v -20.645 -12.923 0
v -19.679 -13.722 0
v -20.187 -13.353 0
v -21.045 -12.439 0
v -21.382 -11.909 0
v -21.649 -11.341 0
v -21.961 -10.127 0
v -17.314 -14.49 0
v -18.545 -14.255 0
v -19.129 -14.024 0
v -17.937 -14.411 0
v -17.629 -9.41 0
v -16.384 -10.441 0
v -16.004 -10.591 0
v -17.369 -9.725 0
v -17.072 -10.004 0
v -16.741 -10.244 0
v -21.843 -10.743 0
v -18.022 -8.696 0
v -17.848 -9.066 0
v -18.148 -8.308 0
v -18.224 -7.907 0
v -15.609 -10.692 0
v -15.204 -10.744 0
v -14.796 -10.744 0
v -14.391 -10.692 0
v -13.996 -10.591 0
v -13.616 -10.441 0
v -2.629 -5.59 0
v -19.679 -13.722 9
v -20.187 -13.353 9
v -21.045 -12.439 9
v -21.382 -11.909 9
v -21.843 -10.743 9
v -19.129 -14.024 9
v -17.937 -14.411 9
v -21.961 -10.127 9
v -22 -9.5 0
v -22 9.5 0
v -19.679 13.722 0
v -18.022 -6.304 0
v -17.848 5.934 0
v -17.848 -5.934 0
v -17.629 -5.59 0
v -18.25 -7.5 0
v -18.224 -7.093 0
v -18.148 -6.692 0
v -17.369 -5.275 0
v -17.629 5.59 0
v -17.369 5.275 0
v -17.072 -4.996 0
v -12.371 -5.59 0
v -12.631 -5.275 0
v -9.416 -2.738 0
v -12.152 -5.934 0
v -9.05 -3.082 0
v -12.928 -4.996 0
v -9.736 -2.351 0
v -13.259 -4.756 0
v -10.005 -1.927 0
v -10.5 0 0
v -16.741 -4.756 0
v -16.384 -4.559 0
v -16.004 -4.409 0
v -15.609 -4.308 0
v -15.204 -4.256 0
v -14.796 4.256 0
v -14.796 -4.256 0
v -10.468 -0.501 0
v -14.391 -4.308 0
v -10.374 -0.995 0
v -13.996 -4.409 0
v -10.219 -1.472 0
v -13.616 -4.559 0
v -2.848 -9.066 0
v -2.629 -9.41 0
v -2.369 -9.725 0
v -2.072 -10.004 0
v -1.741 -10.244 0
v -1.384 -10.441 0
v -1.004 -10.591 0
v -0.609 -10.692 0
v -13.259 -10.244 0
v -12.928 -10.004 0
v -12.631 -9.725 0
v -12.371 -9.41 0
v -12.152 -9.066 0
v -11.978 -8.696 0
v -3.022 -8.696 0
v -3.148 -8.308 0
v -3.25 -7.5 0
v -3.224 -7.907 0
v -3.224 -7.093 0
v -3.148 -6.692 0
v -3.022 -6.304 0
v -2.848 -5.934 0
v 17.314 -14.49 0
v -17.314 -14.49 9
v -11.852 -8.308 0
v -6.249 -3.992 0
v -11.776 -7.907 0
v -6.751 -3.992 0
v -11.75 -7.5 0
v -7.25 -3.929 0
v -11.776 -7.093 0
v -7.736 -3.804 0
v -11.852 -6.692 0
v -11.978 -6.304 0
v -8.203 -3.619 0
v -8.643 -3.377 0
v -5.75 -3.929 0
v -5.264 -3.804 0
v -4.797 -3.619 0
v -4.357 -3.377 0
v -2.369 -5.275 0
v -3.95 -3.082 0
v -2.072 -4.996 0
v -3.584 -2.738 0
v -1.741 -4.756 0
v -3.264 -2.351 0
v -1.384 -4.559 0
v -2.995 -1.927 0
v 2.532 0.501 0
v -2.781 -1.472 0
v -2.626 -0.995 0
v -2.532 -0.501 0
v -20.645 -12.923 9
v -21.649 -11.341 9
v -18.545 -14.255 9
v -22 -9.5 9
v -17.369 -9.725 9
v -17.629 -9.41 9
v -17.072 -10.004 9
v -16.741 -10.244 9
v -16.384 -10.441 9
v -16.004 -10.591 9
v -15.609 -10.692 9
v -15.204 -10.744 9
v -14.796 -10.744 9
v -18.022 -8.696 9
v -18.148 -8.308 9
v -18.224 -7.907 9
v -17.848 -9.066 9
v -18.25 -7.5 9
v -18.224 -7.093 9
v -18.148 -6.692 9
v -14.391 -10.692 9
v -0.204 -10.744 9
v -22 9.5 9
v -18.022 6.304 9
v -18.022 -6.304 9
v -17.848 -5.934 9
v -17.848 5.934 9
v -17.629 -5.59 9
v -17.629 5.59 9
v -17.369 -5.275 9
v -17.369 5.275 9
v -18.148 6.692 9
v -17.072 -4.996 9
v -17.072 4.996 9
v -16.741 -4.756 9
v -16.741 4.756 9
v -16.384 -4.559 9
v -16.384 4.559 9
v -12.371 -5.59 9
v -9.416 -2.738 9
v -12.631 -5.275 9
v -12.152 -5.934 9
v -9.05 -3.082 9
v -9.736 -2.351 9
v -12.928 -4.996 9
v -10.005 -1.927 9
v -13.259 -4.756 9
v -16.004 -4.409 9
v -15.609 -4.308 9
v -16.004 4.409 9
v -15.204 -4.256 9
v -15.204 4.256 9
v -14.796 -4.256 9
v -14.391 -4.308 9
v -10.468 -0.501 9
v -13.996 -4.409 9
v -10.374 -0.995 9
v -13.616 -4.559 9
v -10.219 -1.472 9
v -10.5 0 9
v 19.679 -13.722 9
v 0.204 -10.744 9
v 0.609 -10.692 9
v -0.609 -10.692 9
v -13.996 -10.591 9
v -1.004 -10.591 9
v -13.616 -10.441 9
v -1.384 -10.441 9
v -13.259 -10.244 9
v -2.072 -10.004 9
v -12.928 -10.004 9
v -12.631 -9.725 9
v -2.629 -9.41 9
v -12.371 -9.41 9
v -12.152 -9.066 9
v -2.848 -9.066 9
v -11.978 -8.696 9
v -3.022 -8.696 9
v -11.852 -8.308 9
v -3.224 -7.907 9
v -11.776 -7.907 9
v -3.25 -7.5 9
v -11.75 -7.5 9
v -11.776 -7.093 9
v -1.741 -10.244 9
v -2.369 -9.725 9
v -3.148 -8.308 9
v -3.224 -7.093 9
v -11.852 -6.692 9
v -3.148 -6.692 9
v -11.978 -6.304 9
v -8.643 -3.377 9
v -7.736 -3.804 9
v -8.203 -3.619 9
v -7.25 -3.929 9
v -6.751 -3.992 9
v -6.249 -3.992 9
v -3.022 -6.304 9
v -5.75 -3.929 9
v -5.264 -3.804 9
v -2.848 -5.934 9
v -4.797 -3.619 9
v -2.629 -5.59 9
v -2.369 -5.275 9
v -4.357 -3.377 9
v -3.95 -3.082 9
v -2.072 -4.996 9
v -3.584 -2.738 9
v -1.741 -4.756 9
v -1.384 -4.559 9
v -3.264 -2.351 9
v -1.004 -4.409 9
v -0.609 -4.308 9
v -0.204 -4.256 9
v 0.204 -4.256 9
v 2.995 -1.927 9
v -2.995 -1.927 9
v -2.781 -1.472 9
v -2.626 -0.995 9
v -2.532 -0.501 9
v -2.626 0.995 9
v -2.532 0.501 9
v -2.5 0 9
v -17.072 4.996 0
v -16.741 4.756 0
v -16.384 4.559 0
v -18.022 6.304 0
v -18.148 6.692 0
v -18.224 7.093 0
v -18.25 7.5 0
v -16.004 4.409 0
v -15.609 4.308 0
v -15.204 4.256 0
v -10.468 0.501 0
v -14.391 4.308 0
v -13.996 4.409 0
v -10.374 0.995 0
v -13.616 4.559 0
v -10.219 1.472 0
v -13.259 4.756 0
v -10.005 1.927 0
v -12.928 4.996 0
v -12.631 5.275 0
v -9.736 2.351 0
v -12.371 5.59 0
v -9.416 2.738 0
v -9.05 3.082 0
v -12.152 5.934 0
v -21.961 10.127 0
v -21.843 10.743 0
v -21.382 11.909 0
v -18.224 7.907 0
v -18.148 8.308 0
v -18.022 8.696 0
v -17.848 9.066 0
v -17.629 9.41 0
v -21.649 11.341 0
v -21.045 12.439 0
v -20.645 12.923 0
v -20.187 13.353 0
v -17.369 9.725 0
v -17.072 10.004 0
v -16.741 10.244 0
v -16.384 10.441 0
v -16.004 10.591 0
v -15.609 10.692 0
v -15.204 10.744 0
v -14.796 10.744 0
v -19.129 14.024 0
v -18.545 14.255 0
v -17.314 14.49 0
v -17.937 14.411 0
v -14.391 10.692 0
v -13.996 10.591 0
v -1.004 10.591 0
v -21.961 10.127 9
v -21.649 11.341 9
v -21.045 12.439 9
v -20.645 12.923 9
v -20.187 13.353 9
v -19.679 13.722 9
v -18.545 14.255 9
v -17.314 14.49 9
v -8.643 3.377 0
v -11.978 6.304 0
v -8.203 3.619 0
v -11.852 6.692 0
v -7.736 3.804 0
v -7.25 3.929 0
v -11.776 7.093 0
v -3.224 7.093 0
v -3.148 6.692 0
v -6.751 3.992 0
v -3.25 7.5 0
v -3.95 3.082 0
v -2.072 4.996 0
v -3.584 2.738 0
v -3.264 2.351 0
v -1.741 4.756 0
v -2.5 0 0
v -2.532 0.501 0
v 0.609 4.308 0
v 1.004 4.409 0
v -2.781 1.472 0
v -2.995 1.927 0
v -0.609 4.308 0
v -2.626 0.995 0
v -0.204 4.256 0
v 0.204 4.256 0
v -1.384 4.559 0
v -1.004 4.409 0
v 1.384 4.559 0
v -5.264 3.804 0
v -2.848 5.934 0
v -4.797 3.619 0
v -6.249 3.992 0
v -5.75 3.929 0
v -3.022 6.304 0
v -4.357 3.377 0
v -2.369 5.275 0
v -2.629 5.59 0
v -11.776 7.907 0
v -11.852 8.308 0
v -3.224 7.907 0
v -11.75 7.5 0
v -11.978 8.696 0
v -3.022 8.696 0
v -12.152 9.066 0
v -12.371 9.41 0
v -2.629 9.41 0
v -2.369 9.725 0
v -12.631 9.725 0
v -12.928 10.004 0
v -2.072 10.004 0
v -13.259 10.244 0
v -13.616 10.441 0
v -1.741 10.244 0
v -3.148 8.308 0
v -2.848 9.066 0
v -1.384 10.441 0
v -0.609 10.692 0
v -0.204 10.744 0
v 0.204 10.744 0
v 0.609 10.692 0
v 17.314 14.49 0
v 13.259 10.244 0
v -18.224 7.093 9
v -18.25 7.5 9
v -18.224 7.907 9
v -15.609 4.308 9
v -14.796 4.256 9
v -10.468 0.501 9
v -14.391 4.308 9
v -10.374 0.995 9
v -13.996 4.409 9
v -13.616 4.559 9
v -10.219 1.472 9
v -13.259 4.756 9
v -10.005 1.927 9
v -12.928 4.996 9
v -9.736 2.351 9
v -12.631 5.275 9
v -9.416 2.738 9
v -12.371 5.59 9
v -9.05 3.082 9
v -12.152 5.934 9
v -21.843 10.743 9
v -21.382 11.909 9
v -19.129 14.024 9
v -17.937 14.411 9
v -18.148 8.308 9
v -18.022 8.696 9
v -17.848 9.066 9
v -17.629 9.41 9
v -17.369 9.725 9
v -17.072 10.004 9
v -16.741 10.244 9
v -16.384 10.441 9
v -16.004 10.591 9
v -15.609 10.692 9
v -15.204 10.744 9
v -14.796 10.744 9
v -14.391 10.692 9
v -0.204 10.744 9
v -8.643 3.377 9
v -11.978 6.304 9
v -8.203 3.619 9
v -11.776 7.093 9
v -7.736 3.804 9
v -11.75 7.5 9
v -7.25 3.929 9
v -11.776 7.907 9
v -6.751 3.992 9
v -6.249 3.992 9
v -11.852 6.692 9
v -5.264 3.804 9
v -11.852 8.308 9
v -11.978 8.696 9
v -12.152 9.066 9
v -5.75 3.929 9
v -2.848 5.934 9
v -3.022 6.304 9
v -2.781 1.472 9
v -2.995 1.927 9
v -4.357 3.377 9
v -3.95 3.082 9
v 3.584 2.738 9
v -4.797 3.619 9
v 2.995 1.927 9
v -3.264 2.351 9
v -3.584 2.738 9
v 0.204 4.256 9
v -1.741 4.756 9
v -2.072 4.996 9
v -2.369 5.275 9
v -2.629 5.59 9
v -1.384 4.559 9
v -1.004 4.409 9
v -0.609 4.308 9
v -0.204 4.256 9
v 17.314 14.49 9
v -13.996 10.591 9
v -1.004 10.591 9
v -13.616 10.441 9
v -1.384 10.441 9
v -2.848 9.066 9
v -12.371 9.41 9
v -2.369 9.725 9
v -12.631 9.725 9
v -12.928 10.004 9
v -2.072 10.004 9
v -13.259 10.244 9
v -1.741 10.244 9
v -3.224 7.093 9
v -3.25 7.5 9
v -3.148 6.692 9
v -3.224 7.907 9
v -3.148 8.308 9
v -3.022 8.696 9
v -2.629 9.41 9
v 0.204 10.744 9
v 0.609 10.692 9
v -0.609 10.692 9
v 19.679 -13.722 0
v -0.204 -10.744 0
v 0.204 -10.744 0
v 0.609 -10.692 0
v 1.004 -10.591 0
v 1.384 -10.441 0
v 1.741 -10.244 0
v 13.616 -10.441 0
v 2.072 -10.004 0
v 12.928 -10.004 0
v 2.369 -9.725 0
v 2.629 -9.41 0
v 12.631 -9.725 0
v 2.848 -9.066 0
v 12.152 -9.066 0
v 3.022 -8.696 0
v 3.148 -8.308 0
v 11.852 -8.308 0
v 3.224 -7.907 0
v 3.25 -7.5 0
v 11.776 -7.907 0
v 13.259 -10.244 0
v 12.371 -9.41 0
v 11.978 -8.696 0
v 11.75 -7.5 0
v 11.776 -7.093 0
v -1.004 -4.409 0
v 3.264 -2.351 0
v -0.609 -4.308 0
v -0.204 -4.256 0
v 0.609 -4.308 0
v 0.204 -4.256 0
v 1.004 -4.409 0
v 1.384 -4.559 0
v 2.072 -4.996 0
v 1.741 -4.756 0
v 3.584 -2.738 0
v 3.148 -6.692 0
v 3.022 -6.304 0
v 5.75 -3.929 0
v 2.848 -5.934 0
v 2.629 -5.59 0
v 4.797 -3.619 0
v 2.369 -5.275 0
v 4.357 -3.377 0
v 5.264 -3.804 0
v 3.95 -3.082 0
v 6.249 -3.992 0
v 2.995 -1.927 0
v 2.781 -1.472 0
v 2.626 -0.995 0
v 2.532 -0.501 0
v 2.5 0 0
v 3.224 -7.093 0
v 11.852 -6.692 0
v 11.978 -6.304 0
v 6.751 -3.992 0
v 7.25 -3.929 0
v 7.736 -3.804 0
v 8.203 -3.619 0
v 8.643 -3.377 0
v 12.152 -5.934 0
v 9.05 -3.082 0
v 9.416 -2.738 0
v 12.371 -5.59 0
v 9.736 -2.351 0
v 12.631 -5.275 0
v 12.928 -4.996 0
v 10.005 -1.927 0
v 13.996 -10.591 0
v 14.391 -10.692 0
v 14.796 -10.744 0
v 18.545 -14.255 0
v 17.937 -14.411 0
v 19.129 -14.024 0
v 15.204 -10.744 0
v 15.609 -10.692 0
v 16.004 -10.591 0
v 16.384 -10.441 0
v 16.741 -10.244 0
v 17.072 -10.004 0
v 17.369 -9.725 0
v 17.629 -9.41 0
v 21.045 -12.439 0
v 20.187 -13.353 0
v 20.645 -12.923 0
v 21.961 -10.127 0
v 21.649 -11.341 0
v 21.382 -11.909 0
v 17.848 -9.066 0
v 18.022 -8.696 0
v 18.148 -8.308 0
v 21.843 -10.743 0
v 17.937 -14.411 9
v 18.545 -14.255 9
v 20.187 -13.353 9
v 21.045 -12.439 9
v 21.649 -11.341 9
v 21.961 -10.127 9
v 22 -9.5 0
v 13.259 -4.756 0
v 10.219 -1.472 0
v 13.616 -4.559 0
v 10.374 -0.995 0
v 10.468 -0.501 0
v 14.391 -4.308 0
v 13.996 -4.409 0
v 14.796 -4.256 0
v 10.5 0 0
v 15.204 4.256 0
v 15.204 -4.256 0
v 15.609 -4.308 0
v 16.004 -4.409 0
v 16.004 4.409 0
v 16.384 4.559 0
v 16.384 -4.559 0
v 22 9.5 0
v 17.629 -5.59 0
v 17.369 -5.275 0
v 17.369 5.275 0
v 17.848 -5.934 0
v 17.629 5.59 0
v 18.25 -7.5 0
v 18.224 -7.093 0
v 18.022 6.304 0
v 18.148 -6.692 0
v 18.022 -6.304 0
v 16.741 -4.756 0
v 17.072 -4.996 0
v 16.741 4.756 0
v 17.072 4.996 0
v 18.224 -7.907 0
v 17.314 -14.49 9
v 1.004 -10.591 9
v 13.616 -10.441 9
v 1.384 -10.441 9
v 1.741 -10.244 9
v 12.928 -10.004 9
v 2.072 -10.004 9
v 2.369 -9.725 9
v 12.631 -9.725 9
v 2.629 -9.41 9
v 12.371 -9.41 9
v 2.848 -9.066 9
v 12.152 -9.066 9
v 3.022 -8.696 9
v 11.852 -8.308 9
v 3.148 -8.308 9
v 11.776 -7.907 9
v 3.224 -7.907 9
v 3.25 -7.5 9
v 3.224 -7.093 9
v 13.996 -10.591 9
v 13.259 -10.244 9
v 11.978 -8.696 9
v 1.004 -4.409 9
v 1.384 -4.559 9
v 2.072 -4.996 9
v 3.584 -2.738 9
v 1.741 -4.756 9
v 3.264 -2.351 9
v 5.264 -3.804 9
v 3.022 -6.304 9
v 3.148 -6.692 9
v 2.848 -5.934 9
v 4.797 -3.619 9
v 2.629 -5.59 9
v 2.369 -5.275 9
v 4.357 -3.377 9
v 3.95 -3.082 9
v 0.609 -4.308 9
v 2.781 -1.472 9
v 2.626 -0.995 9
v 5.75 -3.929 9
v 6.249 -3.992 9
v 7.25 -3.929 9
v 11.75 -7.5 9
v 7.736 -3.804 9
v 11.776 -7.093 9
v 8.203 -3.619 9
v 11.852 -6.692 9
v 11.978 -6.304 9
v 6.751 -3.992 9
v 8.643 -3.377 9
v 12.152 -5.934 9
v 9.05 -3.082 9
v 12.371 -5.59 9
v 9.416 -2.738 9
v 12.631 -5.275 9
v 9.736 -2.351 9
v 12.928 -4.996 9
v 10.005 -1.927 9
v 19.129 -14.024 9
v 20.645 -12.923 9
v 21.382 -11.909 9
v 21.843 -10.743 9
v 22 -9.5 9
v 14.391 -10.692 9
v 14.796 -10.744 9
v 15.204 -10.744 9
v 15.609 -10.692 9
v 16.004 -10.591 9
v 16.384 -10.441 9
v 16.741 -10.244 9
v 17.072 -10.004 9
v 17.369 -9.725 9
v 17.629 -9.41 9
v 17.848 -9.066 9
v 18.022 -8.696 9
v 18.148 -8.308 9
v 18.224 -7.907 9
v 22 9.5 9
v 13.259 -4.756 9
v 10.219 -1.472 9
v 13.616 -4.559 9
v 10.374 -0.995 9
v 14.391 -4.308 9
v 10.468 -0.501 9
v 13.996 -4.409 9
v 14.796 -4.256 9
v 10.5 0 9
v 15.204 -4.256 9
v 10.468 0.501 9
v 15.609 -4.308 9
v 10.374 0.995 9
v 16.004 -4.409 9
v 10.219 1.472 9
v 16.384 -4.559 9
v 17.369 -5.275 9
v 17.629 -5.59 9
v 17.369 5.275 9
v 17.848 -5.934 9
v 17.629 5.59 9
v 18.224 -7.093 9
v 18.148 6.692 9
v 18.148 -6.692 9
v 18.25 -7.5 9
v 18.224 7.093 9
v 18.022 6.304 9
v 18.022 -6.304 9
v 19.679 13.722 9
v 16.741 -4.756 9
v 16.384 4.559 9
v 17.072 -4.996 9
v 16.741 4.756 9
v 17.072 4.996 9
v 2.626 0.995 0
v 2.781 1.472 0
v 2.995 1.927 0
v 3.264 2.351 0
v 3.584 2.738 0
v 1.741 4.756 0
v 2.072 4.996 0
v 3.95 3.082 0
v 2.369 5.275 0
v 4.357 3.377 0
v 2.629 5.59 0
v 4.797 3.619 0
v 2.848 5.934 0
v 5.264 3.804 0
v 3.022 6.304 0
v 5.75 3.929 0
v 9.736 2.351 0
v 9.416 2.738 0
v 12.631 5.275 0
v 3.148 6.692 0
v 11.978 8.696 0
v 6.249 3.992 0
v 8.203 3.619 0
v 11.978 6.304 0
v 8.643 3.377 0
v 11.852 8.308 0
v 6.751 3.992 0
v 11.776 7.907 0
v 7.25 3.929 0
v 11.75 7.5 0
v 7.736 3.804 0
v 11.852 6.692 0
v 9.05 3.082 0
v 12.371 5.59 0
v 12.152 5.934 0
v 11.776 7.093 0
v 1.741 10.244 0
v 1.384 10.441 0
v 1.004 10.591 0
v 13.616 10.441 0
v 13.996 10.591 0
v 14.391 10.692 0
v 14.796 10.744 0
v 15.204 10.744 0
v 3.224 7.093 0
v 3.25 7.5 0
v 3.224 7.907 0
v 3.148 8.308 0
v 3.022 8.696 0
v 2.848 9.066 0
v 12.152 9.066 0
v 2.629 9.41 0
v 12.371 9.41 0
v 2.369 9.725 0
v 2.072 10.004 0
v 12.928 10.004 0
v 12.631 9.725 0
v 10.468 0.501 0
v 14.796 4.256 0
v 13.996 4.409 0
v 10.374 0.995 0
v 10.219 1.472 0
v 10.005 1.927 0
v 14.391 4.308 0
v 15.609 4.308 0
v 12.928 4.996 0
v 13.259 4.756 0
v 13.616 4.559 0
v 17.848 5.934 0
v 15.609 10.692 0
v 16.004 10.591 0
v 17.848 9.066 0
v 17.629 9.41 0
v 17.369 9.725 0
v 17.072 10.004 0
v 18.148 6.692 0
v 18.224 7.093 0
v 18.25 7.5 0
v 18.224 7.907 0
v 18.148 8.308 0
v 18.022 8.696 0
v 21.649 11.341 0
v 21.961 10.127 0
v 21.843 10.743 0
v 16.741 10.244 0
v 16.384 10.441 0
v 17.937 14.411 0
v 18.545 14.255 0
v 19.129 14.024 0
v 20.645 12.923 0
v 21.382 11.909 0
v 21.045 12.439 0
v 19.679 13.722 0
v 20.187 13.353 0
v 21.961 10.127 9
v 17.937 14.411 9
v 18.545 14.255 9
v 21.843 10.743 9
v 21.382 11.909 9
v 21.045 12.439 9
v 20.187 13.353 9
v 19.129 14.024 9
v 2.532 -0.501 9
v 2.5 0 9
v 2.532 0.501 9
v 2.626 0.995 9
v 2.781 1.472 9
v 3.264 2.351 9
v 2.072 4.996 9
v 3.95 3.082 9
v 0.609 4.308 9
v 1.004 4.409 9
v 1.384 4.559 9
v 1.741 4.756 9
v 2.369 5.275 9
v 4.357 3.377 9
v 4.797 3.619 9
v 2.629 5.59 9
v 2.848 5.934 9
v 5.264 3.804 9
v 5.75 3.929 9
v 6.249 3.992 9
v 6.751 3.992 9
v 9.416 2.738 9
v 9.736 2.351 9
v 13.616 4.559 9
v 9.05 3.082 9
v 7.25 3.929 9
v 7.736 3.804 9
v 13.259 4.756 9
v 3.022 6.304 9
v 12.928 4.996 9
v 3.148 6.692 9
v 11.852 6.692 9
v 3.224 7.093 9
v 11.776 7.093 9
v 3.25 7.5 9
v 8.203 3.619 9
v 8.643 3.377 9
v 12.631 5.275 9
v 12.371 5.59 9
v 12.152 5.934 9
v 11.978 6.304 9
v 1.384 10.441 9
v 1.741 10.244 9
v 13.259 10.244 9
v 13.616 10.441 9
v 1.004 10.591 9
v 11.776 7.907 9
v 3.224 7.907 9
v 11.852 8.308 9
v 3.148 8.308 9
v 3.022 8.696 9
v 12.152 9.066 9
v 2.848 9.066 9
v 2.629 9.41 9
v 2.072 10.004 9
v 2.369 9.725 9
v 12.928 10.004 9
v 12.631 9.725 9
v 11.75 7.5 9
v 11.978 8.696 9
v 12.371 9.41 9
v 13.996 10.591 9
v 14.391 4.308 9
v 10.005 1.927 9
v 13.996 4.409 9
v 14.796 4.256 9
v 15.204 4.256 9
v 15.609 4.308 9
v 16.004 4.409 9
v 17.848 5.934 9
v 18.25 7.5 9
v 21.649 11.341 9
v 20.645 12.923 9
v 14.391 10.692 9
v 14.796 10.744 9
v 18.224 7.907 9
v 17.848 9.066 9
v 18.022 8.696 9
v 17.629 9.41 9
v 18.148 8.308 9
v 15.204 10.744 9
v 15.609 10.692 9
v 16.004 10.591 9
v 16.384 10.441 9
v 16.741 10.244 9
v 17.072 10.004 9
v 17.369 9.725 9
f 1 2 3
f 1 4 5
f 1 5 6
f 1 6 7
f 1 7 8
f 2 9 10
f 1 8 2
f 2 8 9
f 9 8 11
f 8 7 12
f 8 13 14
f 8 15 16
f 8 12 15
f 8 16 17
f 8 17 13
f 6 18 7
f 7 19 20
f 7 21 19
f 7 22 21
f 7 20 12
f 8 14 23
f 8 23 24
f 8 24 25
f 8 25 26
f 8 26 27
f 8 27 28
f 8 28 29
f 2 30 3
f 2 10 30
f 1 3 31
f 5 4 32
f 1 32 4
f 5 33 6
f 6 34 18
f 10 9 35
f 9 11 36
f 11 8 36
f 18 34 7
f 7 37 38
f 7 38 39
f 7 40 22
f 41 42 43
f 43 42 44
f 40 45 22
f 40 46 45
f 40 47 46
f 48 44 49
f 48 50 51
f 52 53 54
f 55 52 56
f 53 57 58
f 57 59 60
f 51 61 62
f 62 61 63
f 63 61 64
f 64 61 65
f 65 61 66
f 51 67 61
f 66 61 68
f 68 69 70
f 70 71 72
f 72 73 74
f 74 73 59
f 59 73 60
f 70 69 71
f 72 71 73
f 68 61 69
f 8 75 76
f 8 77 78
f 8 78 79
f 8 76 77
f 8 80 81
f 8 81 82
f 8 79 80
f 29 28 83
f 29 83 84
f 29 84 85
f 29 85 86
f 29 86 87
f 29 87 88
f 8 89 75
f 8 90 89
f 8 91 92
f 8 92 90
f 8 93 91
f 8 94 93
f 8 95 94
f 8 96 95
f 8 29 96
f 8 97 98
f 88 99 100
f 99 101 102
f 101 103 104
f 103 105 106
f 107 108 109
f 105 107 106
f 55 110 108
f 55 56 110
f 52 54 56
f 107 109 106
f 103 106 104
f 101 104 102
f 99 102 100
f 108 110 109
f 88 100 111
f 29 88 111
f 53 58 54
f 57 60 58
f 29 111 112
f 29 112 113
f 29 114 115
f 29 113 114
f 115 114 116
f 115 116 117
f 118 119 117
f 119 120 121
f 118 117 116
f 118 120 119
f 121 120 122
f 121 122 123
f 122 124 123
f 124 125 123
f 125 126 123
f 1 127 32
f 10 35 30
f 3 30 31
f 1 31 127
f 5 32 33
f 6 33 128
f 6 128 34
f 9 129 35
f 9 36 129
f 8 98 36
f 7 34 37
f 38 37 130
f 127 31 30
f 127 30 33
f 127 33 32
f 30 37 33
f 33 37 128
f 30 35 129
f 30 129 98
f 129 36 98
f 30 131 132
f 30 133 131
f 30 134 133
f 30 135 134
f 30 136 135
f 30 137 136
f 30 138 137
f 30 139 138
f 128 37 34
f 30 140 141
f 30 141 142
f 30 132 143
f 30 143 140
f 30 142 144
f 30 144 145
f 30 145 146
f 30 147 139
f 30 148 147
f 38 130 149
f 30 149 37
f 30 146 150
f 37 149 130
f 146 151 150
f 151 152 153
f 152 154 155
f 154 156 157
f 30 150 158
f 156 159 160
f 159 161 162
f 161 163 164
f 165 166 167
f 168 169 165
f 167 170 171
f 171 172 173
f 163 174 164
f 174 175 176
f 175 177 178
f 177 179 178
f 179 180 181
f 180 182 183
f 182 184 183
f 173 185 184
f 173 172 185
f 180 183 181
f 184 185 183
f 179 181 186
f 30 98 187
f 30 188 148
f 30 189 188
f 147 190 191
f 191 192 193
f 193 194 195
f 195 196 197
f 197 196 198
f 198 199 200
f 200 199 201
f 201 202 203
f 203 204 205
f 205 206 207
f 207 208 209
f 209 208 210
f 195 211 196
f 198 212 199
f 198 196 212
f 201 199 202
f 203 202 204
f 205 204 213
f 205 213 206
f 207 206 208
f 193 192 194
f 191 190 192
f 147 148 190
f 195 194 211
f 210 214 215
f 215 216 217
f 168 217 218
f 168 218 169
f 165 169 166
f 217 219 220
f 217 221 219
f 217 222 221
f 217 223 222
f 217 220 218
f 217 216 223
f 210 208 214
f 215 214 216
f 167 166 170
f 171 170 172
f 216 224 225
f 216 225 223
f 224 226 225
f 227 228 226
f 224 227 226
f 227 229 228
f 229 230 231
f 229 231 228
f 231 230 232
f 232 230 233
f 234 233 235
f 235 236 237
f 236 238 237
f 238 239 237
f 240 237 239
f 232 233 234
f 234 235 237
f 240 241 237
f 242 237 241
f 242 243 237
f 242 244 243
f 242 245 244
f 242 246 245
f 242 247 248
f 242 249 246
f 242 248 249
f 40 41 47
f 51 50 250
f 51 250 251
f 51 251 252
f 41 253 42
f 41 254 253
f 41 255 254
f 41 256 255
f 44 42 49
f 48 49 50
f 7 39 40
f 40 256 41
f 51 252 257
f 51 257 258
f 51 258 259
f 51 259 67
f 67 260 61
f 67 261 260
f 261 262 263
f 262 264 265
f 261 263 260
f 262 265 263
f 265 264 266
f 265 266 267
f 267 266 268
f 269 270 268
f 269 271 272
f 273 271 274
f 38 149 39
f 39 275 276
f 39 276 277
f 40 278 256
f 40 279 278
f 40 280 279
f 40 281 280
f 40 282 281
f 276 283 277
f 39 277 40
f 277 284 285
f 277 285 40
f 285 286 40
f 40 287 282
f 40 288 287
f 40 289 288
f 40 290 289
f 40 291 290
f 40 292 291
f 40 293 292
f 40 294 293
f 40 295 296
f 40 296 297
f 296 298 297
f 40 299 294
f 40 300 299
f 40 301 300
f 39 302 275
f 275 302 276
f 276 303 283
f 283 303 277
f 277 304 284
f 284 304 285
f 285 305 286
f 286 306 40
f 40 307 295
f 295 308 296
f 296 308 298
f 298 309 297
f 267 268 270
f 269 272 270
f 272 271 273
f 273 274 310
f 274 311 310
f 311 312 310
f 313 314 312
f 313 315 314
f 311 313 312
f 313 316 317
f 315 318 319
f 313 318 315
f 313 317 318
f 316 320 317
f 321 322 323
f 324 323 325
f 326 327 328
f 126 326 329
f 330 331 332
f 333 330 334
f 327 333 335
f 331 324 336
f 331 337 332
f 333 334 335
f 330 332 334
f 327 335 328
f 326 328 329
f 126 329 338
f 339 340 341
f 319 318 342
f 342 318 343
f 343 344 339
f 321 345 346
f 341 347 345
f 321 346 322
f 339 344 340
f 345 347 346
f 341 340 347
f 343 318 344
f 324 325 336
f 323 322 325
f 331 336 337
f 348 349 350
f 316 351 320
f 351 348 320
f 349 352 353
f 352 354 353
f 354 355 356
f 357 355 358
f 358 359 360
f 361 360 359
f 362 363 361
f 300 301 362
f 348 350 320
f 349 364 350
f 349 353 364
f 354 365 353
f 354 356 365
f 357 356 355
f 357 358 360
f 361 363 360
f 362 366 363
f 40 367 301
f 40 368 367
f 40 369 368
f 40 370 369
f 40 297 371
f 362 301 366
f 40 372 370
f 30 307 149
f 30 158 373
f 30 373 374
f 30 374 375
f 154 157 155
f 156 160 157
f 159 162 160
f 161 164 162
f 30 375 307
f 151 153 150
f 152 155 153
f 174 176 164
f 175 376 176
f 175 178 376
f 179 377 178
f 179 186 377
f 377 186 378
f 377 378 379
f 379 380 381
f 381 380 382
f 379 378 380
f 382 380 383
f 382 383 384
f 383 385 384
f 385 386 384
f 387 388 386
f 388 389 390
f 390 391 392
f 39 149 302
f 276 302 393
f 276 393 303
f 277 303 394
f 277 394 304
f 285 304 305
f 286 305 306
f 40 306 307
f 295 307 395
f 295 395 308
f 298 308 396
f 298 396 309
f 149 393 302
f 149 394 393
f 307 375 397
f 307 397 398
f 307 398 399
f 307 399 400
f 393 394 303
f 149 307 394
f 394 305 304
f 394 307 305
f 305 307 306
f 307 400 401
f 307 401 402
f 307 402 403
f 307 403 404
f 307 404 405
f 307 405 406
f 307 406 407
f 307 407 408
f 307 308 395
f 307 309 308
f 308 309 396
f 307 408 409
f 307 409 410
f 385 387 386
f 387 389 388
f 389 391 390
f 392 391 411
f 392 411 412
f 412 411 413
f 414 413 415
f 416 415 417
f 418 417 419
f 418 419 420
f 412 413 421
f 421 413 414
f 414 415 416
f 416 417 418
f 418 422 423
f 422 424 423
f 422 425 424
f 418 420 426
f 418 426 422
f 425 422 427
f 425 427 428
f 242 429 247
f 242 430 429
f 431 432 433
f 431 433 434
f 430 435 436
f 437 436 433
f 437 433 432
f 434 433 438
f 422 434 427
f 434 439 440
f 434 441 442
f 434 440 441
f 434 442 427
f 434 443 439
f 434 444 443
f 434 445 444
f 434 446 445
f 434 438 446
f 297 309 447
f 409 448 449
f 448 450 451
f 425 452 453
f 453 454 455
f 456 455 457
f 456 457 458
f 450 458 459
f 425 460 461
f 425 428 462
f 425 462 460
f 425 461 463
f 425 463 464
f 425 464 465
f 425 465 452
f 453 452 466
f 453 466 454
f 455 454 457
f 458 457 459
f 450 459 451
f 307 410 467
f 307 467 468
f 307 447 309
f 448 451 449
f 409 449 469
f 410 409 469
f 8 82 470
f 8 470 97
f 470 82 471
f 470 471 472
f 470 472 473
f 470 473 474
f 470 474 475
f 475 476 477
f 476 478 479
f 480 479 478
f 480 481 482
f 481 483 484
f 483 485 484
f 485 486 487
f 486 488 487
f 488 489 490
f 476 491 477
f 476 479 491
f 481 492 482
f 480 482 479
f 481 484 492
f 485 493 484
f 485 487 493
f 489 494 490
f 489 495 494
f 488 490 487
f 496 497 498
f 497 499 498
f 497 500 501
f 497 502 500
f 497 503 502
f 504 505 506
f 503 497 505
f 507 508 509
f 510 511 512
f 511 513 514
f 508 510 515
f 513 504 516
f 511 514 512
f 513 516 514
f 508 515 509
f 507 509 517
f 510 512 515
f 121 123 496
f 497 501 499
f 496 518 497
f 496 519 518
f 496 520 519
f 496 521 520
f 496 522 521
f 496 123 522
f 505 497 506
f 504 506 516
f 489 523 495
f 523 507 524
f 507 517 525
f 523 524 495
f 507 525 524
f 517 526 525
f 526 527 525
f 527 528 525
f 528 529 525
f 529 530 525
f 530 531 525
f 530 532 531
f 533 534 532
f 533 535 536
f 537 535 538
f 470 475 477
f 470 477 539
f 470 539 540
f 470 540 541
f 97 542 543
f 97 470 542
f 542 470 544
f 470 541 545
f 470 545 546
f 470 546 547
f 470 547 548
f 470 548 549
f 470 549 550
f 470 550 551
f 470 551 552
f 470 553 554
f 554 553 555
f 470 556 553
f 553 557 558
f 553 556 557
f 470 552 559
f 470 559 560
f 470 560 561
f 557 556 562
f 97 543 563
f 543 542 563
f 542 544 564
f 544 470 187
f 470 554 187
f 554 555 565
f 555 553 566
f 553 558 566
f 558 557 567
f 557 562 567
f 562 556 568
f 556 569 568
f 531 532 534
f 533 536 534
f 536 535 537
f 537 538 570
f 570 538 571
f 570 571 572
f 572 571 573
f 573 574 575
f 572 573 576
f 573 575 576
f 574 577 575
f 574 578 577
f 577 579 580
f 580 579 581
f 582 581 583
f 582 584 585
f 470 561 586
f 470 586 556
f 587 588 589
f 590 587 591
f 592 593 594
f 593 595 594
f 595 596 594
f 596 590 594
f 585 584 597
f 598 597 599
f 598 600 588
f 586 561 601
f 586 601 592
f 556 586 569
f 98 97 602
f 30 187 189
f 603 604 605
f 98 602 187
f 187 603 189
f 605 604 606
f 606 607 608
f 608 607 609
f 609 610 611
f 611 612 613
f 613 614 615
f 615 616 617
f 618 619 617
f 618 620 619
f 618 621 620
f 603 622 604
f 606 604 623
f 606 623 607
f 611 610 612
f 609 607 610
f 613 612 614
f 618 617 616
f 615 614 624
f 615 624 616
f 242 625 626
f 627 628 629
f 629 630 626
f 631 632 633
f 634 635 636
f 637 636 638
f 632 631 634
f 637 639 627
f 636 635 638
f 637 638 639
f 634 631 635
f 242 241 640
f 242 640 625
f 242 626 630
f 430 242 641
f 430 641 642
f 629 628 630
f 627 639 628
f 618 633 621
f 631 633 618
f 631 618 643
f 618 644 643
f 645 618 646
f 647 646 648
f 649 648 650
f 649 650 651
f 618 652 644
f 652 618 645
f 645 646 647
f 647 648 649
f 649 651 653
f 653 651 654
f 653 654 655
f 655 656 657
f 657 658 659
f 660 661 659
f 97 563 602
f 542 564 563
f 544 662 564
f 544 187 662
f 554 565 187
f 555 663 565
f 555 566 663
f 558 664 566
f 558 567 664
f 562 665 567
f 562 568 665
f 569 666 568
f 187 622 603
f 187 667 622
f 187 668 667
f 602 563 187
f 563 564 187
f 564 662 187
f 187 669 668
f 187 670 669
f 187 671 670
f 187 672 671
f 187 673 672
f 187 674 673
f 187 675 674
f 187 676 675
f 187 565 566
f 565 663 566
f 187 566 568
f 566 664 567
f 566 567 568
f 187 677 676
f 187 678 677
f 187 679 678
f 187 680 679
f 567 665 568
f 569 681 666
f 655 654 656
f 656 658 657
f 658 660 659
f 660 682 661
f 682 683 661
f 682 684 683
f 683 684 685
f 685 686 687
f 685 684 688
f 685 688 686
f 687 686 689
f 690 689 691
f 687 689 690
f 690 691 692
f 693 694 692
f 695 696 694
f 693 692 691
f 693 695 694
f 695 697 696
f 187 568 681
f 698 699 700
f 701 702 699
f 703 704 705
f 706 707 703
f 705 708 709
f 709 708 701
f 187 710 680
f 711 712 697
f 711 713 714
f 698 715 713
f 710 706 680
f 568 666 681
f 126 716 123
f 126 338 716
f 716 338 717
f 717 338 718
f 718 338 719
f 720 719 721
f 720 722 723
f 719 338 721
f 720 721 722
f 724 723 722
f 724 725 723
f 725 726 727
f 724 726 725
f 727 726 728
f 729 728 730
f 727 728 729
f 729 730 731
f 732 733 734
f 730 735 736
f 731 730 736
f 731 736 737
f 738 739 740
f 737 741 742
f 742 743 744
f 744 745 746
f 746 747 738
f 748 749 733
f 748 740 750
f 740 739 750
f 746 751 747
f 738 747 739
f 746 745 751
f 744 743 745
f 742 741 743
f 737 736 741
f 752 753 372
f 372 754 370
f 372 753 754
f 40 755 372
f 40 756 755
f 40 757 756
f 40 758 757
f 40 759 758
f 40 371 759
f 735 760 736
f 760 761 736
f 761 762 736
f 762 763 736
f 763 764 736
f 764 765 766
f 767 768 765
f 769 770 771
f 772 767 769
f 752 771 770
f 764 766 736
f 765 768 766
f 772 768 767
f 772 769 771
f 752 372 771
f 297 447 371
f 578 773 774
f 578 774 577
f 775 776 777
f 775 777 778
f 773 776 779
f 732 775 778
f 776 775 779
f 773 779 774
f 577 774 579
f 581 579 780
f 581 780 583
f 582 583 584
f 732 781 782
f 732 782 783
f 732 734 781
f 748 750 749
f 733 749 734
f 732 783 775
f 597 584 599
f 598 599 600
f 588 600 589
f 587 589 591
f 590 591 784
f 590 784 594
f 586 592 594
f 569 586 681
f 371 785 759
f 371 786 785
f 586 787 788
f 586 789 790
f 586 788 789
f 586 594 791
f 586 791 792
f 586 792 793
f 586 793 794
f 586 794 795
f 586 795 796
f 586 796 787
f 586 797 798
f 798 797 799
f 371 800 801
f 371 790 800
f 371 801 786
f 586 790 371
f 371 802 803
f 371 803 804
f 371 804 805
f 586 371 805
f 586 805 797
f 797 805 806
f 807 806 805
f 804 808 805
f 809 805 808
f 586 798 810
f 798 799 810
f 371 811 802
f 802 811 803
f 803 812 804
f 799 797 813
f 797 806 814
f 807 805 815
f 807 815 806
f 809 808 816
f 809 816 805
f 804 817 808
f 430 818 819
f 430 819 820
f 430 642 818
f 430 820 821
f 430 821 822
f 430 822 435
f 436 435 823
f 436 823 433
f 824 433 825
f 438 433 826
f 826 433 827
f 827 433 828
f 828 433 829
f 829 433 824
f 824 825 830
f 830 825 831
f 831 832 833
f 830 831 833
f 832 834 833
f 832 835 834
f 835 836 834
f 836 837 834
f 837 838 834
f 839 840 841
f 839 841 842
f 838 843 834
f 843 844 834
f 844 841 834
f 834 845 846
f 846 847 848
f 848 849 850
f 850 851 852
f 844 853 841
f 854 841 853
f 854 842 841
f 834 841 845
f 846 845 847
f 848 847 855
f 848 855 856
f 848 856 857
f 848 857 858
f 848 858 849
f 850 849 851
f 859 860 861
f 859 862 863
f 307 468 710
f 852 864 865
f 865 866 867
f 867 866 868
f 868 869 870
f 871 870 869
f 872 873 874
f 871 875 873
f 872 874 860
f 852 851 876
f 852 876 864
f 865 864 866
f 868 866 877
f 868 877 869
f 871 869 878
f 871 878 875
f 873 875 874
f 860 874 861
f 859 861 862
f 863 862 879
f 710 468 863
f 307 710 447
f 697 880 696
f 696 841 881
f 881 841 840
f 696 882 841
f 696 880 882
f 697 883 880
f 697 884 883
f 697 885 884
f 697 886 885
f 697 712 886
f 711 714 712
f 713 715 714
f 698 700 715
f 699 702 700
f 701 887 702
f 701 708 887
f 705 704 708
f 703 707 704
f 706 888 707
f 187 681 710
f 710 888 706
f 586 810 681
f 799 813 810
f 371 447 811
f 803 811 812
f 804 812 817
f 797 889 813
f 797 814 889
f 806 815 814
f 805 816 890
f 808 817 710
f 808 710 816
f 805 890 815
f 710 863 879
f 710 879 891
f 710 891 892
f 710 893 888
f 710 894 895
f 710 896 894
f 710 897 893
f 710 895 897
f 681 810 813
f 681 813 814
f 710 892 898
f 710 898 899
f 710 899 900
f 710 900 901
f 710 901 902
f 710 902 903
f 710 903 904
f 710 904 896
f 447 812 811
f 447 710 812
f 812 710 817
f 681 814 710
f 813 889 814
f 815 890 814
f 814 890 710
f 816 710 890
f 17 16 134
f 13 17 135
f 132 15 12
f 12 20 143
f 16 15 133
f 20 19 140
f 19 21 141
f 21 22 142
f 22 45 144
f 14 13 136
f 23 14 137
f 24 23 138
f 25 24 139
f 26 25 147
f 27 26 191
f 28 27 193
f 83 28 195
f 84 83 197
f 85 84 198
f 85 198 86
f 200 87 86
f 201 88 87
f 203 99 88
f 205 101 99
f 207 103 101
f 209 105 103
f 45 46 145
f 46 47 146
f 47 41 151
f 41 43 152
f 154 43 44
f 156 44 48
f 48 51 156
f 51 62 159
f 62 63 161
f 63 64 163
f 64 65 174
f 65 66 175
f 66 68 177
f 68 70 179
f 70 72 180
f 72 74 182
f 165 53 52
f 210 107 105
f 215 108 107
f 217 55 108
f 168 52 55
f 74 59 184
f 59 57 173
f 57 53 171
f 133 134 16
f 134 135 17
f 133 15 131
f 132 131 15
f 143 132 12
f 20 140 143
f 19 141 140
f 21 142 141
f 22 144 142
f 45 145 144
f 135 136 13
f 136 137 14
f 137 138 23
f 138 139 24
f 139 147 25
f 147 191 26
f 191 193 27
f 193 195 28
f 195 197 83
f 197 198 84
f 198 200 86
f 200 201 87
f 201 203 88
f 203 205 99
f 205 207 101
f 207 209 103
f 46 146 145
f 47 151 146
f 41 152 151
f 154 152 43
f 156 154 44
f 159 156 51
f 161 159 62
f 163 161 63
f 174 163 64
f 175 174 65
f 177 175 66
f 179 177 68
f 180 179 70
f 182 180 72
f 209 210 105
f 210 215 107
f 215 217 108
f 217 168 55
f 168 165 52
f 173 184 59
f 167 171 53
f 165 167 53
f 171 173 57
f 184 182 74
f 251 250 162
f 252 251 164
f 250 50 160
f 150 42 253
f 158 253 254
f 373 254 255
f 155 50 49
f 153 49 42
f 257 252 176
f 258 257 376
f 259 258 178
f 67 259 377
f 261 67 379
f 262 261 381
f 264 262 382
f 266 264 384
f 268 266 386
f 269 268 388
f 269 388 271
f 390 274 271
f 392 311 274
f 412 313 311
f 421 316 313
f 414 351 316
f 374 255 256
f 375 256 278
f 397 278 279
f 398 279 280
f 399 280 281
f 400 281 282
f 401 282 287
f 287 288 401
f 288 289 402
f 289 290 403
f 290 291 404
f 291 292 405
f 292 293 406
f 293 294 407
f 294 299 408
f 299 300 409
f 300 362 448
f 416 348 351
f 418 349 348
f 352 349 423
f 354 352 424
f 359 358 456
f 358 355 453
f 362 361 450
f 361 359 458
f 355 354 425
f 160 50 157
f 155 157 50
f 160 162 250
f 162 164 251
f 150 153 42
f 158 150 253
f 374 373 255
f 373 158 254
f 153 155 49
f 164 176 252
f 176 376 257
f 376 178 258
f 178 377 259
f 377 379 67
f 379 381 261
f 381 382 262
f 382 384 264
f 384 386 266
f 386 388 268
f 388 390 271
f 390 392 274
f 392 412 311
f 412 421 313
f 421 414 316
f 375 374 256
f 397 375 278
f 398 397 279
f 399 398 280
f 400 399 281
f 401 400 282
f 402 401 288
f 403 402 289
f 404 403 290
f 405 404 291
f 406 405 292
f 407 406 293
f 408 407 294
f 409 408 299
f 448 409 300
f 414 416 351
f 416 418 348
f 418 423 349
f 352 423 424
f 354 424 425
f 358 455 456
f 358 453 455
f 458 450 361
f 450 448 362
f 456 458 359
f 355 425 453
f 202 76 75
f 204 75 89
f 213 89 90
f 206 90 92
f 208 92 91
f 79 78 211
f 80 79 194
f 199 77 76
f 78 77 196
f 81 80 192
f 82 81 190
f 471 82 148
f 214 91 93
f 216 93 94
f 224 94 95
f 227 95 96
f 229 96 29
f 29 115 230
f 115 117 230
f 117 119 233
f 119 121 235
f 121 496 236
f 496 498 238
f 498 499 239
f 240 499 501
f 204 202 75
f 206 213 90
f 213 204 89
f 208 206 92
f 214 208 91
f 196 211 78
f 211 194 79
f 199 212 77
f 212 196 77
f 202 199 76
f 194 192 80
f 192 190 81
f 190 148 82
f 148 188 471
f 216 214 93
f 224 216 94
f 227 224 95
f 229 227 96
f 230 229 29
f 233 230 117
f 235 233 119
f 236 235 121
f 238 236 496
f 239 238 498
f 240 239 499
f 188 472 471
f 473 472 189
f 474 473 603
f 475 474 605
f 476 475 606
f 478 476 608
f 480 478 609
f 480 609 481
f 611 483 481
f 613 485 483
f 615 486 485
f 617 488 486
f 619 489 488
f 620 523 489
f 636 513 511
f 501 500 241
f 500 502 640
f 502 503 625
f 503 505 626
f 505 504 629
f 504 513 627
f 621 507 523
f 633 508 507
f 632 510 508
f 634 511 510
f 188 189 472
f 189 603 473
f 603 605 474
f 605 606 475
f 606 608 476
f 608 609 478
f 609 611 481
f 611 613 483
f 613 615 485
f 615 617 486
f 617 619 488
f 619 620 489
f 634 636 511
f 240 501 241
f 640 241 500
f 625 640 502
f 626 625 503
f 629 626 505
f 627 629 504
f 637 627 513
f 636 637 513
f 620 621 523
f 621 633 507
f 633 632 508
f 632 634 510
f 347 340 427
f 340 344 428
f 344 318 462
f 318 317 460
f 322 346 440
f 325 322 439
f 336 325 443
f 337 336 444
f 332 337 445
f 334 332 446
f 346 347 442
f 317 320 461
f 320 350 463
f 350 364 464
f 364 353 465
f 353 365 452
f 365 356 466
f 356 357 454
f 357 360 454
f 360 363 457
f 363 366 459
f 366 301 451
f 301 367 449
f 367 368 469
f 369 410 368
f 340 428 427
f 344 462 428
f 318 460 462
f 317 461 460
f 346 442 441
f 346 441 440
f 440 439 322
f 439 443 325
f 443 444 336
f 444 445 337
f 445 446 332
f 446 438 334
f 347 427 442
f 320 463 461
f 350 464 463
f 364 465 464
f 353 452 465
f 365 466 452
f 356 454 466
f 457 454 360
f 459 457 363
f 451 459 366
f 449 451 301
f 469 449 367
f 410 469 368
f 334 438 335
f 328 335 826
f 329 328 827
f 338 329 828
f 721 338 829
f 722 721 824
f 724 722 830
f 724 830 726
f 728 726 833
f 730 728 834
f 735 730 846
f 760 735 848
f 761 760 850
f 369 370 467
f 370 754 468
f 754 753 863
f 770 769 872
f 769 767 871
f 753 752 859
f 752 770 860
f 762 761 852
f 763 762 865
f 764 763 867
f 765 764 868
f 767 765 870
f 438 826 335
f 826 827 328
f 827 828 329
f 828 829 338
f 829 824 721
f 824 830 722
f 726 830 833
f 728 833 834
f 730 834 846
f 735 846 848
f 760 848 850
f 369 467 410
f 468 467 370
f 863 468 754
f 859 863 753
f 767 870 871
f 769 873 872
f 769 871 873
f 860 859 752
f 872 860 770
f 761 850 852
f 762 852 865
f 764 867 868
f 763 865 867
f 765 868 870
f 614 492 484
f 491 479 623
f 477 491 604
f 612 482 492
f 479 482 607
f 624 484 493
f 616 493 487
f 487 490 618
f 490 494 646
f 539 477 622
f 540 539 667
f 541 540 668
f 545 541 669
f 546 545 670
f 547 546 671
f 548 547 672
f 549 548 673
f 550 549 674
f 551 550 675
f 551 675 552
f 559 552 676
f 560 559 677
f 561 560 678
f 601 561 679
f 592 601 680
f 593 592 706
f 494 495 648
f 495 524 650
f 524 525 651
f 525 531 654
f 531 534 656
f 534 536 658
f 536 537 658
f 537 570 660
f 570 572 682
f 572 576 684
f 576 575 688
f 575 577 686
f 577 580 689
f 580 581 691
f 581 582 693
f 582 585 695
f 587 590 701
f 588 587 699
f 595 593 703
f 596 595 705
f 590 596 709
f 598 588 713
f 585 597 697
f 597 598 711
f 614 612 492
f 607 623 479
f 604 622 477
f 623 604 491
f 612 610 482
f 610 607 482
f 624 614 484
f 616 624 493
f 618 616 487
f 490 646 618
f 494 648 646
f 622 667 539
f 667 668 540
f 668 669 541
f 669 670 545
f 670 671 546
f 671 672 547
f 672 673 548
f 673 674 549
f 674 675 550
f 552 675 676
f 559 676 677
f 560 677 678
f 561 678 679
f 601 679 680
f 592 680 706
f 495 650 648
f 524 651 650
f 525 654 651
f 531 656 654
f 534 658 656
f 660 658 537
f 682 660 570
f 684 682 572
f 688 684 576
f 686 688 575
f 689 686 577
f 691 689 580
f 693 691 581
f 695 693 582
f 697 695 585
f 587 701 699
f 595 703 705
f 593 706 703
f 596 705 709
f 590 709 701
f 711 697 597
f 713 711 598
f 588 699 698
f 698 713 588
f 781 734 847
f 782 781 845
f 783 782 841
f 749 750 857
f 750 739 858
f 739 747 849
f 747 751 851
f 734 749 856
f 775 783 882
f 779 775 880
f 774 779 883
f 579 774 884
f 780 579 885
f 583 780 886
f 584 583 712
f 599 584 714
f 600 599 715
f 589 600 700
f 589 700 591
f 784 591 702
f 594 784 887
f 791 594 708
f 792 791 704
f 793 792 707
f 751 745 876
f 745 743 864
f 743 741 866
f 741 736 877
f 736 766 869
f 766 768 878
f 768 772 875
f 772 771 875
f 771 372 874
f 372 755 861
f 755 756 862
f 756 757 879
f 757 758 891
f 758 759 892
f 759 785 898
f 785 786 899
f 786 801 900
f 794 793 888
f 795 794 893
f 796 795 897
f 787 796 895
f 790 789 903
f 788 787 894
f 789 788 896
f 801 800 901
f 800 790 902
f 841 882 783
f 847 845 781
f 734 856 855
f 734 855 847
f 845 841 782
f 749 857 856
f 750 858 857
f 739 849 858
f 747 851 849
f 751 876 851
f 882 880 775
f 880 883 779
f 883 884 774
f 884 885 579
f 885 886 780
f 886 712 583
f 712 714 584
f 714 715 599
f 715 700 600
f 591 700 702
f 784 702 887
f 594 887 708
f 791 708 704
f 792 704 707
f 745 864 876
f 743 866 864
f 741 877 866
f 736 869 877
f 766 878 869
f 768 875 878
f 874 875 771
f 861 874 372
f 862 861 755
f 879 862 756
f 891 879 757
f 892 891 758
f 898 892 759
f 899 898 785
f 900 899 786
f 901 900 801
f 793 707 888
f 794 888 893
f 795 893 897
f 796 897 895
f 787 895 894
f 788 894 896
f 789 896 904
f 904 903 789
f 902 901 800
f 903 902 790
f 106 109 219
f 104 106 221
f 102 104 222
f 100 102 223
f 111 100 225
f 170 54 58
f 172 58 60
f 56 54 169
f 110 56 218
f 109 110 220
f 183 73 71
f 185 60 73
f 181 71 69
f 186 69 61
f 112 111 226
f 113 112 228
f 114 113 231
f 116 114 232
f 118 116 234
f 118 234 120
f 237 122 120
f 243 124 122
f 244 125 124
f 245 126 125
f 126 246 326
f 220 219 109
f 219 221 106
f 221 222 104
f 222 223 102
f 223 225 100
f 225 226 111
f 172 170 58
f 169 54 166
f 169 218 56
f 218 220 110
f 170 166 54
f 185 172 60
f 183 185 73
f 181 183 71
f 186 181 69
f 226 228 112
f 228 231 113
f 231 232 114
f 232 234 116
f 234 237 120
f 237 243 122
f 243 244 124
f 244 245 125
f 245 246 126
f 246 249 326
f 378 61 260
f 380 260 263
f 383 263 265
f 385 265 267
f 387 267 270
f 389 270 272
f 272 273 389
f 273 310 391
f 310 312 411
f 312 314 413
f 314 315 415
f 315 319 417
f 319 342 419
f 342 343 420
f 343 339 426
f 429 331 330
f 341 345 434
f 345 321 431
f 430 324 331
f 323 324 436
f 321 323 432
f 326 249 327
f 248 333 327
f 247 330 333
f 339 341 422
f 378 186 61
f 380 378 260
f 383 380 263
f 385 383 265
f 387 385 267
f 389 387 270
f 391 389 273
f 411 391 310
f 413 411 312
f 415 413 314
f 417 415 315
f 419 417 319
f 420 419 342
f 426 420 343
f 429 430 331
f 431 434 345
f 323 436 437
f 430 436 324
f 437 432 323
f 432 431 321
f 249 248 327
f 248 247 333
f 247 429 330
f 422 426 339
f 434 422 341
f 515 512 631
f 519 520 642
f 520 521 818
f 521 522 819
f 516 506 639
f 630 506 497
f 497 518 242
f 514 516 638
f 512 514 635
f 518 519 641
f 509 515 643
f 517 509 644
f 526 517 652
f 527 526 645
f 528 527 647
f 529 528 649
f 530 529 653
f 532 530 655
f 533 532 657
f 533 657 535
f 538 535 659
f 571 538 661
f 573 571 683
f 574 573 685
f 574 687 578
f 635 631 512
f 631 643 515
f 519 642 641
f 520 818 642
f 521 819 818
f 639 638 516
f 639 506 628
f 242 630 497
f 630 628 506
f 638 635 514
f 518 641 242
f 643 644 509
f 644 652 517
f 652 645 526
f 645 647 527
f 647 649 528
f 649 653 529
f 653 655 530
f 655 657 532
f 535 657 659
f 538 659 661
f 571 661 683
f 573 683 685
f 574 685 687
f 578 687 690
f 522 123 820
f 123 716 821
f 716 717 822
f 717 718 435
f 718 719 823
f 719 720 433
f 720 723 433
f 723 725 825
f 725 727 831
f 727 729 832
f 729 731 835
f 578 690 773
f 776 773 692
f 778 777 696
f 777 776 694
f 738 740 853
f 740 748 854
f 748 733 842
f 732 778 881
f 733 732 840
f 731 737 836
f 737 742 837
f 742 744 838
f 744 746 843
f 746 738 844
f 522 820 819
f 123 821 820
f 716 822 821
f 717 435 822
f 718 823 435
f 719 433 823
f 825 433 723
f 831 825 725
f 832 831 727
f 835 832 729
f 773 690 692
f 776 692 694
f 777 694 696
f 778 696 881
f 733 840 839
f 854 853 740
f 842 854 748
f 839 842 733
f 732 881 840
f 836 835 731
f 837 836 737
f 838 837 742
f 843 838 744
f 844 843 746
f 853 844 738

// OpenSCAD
$fn = 50;

difference() {
	union() {
		hull() {
			translate(v = [-17.0, 9.5, 0]) {
				cylinder(h = 9, r = 5);
			}
			translate(v = [17.0, 9.5, 0]) {
				cylinder(h = 9, r = 5);
			}
			translate(v = [-17.0, -9.5, 0]) {
				cylinder(h = 9, r = 5);
			}
			translate(v = [17.0, -9.5, 0]) {
				cylinder(h = 9, r = 5);
			}
		}
	}
	union() {
		translate(v = [-15.0, -7.5, 0]) {
			cylinder(h = 9, r = 3.25);
		}
		translate(v = [-15.0, 7.5, 0]) {
			cylinder(h = 9, r = 3.25);
		}
		translate(v = [0.0, -7.5, 0]) {
			cylinder(h = 9, r = 3.25);
		}
		translate(v = [0.0, 7.5, 0]) {
			cylinder(h = 9, r = 3.25);
		}
		translate(v = [15.0, -7.5, 0]) {
			cylinder(h = 9, r = 3.25);
		}
		translate(v = [15.0, 7.5, 0]) {
			cylinder(h = 9, r = 3.25);
		}
		translate(v = [-6.5, 0, 0.0]) {
			cylinder(h = 9, r = 4.0);
		}
		translate(v = [6.5, 0, 0.0]) {
			cylinder(h = 9, r = 4.0);
		}
	}
}
